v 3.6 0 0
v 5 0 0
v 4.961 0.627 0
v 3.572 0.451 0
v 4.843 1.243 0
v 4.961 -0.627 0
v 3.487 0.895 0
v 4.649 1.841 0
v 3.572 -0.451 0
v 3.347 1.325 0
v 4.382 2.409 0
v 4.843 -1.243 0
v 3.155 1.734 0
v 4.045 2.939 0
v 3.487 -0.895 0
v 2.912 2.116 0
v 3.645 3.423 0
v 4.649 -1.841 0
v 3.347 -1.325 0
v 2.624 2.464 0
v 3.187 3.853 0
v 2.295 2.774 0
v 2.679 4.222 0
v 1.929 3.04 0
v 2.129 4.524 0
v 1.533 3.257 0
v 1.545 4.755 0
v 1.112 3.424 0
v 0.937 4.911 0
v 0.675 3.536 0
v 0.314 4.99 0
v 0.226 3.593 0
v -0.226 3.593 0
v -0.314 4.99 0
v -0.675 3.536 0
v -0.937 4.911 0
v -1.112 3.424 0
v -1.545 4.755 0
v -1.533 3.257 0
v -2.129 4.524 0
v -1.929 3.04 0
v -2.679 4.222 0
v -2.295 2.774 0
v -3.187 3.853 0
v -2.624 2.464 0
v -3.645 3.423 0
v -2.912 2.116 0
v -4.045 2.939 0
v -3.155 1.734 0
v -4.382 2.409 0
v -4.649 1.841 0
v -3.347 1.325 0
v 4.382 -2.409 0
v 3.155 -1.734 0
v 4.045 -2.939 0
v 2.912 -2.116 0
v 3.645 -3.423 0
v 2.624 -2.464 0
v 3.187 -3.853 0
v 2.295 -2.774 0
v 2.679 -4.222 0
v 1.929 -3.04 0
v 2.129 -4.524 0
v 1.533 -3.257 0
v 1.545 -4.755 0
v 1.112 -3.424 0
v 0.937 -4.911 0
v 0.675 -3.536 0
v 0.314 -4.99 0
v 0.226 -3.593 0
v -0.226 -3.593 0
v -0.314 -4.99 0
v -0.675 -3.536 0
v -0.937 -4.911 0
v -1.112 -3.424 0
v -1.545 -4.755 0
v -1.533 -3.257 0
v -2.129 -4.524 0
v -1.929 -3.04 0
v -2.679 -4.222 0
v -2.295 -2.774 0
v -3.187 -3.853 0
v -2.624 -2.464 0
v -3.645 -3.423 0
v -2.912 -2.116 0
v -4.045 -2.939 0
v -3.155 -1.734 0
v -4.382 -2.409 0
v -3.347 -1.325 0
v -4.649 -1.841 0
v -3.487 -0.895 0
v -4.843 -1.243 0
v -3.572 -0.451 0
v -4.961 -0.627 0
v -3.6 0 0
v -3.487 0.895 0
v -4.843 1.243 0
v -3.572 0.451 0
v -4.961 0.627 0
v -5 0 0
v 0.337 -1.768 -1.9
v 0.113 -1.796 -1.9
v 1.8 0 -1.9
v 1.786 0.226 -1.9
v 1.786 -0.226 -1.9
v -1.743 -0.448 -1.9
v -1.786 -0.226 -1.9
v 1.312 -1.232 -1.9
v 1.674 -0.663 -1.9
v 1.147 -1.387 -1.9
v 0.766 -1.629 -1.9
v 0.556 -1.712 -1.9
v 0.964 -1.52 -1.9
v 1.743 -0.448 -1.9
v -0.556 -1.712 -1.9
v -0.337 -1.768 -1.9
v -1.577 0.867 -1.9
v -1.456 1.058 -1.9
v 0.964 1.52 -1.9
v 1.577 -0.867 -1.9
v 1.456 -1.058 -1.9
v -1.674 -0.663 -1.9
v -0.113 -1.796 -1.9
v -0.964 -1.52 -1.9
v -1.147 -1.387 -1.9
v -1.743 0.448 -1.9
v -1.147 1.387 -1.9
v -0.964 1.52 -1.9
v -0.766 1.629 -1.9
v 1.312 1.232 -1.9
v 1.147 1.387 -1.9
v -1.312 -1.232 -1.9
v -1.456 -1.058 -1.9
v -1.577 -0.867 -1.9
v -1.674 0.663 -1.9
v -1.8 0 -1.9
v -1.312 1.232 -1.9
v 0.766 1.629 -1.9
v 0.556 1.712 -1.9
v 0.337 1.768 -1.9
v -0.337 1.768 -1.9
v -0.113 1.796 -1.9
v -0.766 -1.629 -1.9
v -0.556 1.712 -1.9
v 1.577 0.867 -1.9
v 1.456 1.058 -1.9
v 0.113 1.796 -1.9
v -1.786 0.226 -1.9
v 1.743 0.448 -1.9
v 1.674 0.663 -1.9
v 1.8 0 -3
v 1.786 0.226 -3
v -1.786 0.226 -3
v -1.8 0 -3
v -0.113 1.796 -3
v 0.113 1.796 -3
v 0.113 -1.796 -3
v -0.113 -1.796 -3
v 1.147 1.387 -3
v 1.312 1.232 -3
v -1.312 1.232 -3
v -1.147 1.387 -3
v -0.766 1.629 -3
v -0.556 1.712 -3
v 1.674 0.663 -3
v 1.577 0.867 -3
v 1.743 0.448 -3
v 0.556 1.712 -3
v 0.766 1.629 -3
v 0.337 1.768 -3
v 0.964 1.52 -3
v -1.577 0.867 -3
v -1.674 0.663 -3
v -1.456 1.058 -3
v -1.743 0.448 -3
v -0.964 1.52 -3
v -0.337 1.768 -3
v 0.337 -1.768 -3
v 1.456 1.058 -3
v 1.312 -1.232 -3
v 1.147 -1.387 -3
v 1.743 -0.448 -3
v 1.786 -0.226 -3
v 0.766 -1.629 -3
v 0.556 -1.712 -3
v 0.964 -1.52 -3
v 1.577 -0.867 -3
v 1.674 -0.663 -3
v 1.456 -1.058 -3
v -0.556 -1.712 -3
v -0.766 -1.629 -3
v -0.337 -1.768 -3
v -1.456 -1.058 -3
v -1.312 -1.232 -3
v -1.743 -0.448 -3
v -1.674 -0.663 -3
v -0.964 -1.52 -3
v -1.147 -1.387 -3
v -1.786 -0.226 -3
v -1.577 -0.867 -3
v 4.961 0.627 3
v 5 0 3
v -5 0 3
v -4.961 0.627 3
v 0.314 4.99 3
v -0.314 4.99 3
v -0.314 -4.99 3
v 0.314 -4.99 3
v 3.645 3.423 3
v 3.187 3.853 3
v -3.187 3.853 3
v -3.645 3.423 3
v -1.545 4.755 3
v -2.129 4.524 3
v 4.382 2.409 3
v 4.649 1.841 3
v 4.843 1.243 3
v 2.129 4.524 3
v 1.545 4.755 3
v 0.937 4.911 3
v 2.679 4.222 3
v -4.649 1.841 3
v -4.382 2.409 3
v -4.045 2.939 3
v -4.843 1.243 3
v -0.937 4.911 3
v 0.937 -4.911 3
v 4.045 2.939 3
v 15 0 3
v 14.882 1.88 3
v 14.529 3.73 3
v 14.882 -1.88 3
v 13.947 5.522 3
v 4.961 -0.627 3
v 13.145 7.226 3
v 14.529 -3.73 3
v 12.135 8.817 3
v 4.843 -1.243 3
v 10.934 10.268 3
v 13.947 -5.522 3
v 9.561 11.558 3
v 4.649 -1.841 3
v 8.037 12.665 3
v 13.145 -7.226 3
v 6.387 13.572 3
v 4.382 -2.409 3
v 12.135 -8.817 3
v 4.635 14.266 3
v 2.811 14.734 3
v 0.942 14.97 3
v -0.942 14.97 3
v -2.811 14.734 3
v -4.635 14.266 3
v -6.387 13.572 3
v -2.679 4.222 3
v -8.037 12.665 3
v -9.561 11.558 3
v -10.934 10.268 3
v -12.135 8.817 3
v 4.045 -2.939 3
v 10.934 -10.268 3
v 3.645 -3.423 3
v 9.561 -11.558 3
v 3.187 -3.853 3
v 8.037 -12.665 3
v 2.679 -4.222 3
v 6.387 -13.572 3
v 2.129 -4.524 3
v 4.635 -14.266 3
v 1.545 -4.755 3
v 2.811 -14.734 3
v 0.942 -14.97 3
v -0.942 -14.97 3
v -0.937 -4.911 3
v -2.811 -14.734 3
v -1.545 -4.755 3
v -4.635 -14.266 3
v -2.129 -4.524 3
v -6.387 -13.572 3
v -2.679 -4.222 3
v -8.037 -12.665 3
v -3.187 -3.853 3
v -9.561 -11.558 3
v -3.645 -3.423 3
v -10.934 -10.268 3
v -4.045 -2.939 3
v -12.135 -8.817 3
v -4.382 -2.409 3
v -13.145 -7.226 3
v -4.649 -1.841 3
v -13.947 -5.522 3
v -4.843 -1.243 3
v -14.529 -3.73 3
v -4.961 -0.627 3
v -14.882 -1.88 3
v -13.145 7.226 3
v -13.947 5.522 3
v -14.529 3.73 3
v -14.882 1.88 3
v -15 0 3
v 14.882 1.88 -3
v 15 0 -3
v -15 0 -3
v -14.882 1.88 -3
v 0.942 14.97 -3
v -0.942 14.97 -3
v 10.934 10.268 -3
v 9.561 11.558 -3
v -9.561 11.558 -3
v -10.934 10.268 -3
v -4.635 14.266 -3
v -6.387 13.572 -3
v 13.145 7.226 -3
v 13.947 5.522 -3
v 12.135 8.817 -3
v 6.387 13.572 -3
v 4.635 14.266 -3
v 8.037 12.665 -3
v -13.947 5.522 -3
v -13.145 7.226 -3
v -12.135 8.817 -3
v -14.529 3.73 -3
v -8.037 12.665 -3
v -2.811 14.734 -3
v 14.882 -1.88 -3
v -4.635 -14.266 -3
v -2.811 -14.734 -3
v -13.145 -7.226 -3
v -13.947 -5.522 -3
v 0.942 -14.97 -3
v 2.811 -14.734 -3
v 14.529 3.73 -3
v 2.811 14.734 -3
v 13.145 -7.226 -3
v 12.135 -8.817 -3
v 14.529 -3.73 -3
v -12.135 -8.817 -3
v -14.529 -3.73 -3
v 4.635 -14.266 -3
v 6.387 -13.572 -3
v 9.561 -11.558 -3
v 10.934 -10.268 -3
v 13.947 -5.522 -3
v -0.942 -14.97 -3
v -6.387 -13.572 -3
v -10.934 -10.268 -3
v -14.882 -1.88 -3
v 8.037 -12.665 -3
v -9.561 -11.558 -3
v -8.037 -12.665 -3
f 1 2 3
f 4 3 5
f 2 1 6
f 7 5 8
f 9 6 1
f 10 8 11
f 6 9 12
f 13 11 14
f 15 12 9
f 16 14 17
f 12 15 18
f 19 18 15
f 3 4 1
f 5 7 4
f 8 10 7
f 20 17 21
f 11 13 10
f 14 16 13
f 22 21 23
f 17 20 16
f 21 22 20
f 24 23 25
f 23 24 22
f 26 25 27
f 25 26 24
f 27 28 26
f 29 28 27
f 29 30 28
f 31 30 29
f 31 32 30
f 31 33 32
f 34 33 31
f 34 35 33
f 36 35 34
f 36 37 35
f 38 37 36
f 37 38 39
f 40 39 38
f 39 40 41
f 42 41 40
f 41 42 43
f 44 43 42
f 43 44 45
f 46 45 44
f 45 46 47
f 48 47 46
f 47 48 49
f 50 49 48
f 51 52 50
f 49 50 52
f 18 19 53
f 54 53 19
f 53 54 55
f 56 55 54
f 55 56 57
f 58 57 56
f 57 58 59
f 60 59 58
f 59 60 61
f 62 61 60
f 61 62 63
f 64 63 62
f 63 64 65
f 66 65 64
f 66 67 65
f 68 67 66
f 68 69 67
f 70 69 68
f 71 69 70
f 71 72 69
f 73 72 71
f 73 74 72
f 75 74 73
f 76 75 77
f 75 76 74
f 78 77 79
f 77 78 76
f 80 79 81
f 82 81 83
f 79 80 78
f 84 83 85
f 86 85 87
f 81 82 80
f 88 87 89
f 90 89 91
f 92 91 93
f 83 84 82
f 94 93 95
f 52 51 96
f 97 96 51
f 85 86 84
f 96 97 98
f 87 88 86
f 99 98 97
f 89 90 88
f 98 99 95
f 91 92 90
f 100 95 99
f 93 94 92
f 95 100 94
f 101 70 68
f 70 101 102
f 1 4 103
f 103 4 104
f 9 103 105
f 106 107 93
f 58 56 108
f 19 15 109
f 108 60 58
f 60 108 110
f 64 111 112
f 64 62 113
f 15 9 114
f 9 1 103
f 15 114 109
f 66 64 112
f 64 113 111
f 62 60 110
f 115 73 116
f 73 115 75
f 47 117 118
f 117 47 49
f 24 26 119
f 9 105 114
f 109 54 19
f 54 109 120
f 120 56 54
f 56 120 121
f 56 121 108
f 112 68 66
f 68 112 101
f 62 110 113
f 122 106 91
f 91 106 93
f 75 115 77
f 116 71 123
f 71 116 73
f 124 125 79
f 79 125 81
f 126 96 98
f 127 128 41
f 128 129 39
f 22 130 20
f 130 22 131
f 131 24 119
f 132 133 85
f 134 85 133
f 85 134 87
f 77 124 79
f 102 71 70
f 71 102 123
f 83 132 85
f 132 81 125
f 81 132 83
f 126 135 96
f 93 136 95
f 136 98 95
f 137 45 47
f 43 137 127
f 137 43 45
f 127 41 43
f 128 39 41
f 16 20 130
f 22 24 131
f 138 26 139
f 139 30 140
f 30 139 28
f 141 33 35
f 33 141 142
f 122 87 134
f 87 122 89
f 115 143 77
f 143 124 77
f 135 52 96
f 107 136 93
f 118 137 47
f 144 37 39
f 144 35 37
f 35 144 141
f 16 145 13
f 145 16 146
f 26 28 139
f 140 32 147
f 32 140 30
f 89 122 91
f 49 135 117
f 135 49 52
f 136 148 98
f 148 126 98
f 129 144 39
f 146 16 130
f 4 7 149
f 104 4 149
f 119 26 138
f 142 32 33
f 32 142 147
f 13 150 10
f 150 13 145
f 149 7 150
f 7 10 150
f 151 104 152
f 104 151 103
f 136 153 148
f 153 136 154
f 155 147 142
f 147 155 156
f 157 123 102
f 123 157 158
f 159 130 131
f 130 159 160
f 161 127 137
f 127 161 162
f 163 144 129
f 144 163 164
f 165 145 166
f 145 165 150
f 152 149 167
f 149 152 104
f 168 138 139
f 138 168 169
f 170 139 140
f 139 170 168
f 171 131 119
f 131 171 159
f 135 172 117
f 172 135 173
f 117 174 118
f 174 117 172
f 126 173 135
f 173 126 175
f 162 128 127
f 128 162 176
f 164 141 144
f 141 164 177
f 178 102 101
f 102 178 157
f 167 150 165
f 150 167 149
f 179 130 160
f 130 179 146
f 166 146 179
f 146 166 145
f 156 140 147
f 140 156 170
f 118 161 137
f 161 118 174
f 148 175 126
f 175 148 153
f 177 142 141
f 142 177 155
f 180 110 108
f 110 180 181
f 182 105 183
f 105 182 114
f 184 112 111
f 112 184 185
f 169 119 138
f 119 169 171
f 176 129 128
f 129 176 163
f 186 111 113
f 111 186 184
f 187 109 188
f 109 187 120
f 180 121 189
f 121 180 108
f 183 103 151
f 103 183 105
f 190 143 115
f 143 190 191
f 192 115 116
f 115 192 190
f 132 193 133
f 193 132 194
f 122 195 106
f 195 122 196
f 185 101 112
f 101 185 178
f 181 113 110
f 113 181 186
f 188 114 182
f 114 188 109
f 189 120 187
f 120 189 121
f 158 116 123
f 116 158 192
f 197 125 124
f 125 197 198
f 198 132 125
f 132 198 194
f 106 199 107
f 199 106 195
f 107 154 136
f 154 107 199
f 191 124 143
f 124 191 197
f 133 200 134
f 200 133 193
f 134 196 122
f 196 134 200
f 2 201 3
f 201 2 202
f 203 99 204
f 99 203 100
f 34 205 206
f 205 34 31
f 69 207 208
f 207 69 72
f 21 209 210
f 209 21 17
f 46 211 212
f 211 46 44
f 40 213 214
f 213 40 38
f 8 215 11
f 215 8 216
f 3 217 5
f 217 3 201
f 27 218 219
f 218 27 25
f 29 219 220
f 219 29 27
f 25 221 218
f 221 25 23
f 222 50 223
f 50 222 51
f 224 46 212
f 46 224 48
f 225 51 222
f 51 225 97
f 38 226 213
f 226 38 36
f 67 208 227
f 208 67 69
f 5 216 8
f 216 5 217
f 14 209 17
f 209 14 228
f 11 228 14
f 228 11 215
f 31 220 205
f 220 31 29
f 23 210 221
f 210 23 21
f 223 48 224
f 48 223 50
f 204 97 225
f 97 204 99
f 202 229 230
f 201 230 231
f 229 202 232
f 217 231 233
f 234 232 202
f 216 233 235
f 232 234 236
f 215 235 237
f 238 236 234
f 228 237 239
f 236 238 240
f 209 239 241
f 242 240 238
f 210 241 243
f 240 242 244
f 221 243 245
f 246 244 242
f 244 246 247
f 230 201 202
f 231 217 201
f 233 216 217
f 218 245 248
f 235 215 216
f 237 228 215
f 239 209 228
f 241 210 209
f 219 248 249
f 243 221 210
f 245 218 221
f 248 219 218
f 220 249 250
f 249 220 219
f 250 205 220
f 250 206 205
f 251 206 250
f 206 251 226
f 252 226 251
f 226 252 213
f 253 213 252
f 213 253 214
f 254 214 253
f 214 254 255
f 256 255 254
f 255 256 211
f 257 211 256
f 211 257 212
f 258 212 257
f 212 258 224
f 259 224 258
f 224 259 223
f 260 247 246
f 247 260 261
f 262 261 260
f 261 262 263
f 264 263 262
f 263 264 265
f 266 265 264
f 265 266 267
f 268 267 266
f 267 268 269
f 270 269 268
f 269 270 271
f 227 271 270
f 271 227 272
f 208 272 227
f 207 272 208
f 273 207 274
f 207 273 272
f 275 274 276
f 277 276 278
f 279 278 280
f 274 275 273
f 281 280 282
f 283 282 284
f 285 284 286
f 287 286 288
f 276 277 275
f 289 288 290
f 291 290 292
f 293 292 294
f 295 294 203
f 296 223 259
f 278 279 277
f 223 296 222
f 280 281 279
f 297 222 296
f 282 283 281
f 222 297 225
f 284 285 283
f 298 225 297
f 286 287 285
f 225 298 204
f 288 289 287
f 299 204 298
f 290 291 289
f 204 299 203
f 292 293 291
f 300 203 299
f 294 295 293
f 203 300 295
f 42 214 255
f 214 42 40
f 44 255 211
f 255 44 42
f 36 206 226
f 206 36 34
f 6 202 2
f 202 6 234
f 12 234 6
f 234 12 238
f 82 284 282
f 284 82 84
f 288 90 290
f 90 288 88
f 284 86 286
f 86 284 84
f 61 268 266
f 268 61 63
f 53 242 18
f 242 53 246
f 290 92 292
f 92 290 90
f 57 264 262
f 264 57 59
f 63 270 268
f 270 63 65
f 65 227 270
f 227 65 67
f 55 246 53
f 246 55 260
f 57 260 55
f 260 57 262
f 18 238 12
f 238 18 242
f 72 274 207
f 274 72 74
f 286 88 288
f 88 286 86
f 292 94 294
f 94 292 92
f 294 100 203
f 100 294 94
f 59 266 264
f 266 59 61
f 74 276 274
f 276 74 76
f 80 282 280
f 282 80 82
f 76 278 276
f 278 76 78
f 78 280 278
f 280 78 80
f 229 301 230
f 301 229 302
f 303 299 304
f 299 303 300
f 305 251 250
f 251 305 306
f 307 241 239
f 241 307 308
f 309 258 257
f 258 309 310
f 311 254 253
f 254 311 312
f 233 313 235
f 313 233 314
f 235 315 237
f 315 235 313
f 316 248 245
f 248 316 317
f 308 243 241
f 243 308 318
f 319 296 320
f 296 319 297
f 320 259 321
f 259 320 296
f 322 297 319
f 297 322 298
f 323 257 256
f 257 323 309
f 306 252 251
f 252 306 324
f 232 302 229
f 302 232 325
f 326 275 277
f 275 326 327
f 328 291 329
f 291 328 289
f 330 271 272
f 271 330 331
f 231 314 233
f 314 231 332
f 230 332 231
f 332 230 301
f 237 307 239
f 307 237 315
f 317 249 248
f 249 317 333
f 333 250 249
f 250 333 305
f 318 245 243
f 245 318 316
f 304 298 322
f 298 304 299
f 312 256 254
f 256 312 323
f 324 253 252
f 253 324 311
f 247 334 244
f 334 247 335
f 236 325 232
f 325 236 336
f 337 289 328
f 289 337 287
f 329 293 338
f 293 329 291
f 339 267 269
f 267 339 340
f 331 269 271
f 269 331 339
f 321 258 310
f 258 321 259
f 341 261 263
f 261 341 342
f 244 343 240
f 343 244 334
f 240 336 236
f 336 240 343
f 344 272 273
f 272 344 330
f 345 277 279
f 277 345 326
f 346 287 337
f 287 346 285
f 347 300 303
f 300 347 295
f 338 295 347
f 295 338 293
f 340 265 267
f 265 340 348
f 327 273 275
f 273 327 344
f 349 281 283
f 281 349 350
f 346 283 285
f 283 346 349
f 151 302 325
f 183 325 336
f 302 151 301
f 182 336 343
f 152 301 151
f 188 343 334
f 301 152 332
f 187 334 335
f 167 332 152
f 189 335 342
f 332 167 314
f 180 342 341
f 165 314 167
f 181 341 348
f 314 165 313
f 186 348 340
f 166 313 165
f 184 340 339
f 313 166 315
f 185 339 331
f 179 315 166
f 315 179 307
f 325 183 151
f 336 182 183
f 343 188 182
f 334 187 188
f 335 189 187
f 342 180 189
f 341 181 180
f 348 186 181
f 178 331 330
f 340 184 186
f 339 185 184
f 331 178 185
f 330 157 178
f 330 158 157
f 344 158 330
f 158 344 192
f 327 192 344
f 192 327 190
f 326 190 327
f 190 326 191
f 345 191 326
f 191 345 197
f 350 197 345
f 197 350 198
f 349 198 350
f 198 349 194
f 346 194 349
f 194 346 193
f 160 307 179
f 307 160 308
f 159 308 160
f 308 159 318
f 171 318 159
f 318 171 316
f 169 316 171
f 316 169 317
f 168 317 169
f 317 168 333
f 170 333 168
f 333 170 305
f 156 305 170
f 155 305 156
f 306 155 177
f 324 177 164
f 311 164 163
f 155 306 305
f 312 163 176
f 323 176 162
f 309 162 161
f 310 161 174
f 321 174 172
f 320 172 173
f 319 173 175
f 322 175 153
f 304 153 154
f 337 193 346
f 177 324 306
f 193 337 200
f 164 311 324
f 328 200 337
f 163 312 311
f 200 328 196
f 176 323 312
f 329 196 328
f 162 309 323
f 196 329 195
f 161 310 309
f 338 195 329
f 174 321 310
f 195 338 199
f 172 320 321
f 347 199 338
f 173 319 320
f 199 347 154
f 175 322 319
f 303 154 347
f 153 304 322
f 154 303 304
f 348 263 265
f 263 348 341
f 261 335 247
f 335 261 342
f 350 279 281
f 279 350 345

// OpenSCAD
$fn = 50;


difference() {
	union() {
		translate(v = [0, 0, -3.0000000000]) {
			cylinder(h = 6, r = 15.0000000000);
		}
	}
	union() {
		translate(v = [0, 0, 0]) {
			rotate(a = [0, 0, 0]) {
				difference() {
					union() {
						translate(v = [0, 0, -6.0000000000]) {
							cylinder(h = 6, r = 1.5000000000);
						}
						translate(v = [0, 0, -1.9000000000]) {
							cylinder(h = 1.9000000000, r1 = 1.8000000000, r2 = 3.6000000000);
						}
						translate(v = [0, 0, -6.0000000000]) {
							cylinder(h = 6, r = 1.8000000000);
						}
						translate(v = [0, 0, -6.0000000000]) {
							cylinder(h = 6, r = 1.5000000000);
						}
					}
					union();
				}
			}
		}
		#cylinder(h = 3, r = 5.0000000000);
	}
}
